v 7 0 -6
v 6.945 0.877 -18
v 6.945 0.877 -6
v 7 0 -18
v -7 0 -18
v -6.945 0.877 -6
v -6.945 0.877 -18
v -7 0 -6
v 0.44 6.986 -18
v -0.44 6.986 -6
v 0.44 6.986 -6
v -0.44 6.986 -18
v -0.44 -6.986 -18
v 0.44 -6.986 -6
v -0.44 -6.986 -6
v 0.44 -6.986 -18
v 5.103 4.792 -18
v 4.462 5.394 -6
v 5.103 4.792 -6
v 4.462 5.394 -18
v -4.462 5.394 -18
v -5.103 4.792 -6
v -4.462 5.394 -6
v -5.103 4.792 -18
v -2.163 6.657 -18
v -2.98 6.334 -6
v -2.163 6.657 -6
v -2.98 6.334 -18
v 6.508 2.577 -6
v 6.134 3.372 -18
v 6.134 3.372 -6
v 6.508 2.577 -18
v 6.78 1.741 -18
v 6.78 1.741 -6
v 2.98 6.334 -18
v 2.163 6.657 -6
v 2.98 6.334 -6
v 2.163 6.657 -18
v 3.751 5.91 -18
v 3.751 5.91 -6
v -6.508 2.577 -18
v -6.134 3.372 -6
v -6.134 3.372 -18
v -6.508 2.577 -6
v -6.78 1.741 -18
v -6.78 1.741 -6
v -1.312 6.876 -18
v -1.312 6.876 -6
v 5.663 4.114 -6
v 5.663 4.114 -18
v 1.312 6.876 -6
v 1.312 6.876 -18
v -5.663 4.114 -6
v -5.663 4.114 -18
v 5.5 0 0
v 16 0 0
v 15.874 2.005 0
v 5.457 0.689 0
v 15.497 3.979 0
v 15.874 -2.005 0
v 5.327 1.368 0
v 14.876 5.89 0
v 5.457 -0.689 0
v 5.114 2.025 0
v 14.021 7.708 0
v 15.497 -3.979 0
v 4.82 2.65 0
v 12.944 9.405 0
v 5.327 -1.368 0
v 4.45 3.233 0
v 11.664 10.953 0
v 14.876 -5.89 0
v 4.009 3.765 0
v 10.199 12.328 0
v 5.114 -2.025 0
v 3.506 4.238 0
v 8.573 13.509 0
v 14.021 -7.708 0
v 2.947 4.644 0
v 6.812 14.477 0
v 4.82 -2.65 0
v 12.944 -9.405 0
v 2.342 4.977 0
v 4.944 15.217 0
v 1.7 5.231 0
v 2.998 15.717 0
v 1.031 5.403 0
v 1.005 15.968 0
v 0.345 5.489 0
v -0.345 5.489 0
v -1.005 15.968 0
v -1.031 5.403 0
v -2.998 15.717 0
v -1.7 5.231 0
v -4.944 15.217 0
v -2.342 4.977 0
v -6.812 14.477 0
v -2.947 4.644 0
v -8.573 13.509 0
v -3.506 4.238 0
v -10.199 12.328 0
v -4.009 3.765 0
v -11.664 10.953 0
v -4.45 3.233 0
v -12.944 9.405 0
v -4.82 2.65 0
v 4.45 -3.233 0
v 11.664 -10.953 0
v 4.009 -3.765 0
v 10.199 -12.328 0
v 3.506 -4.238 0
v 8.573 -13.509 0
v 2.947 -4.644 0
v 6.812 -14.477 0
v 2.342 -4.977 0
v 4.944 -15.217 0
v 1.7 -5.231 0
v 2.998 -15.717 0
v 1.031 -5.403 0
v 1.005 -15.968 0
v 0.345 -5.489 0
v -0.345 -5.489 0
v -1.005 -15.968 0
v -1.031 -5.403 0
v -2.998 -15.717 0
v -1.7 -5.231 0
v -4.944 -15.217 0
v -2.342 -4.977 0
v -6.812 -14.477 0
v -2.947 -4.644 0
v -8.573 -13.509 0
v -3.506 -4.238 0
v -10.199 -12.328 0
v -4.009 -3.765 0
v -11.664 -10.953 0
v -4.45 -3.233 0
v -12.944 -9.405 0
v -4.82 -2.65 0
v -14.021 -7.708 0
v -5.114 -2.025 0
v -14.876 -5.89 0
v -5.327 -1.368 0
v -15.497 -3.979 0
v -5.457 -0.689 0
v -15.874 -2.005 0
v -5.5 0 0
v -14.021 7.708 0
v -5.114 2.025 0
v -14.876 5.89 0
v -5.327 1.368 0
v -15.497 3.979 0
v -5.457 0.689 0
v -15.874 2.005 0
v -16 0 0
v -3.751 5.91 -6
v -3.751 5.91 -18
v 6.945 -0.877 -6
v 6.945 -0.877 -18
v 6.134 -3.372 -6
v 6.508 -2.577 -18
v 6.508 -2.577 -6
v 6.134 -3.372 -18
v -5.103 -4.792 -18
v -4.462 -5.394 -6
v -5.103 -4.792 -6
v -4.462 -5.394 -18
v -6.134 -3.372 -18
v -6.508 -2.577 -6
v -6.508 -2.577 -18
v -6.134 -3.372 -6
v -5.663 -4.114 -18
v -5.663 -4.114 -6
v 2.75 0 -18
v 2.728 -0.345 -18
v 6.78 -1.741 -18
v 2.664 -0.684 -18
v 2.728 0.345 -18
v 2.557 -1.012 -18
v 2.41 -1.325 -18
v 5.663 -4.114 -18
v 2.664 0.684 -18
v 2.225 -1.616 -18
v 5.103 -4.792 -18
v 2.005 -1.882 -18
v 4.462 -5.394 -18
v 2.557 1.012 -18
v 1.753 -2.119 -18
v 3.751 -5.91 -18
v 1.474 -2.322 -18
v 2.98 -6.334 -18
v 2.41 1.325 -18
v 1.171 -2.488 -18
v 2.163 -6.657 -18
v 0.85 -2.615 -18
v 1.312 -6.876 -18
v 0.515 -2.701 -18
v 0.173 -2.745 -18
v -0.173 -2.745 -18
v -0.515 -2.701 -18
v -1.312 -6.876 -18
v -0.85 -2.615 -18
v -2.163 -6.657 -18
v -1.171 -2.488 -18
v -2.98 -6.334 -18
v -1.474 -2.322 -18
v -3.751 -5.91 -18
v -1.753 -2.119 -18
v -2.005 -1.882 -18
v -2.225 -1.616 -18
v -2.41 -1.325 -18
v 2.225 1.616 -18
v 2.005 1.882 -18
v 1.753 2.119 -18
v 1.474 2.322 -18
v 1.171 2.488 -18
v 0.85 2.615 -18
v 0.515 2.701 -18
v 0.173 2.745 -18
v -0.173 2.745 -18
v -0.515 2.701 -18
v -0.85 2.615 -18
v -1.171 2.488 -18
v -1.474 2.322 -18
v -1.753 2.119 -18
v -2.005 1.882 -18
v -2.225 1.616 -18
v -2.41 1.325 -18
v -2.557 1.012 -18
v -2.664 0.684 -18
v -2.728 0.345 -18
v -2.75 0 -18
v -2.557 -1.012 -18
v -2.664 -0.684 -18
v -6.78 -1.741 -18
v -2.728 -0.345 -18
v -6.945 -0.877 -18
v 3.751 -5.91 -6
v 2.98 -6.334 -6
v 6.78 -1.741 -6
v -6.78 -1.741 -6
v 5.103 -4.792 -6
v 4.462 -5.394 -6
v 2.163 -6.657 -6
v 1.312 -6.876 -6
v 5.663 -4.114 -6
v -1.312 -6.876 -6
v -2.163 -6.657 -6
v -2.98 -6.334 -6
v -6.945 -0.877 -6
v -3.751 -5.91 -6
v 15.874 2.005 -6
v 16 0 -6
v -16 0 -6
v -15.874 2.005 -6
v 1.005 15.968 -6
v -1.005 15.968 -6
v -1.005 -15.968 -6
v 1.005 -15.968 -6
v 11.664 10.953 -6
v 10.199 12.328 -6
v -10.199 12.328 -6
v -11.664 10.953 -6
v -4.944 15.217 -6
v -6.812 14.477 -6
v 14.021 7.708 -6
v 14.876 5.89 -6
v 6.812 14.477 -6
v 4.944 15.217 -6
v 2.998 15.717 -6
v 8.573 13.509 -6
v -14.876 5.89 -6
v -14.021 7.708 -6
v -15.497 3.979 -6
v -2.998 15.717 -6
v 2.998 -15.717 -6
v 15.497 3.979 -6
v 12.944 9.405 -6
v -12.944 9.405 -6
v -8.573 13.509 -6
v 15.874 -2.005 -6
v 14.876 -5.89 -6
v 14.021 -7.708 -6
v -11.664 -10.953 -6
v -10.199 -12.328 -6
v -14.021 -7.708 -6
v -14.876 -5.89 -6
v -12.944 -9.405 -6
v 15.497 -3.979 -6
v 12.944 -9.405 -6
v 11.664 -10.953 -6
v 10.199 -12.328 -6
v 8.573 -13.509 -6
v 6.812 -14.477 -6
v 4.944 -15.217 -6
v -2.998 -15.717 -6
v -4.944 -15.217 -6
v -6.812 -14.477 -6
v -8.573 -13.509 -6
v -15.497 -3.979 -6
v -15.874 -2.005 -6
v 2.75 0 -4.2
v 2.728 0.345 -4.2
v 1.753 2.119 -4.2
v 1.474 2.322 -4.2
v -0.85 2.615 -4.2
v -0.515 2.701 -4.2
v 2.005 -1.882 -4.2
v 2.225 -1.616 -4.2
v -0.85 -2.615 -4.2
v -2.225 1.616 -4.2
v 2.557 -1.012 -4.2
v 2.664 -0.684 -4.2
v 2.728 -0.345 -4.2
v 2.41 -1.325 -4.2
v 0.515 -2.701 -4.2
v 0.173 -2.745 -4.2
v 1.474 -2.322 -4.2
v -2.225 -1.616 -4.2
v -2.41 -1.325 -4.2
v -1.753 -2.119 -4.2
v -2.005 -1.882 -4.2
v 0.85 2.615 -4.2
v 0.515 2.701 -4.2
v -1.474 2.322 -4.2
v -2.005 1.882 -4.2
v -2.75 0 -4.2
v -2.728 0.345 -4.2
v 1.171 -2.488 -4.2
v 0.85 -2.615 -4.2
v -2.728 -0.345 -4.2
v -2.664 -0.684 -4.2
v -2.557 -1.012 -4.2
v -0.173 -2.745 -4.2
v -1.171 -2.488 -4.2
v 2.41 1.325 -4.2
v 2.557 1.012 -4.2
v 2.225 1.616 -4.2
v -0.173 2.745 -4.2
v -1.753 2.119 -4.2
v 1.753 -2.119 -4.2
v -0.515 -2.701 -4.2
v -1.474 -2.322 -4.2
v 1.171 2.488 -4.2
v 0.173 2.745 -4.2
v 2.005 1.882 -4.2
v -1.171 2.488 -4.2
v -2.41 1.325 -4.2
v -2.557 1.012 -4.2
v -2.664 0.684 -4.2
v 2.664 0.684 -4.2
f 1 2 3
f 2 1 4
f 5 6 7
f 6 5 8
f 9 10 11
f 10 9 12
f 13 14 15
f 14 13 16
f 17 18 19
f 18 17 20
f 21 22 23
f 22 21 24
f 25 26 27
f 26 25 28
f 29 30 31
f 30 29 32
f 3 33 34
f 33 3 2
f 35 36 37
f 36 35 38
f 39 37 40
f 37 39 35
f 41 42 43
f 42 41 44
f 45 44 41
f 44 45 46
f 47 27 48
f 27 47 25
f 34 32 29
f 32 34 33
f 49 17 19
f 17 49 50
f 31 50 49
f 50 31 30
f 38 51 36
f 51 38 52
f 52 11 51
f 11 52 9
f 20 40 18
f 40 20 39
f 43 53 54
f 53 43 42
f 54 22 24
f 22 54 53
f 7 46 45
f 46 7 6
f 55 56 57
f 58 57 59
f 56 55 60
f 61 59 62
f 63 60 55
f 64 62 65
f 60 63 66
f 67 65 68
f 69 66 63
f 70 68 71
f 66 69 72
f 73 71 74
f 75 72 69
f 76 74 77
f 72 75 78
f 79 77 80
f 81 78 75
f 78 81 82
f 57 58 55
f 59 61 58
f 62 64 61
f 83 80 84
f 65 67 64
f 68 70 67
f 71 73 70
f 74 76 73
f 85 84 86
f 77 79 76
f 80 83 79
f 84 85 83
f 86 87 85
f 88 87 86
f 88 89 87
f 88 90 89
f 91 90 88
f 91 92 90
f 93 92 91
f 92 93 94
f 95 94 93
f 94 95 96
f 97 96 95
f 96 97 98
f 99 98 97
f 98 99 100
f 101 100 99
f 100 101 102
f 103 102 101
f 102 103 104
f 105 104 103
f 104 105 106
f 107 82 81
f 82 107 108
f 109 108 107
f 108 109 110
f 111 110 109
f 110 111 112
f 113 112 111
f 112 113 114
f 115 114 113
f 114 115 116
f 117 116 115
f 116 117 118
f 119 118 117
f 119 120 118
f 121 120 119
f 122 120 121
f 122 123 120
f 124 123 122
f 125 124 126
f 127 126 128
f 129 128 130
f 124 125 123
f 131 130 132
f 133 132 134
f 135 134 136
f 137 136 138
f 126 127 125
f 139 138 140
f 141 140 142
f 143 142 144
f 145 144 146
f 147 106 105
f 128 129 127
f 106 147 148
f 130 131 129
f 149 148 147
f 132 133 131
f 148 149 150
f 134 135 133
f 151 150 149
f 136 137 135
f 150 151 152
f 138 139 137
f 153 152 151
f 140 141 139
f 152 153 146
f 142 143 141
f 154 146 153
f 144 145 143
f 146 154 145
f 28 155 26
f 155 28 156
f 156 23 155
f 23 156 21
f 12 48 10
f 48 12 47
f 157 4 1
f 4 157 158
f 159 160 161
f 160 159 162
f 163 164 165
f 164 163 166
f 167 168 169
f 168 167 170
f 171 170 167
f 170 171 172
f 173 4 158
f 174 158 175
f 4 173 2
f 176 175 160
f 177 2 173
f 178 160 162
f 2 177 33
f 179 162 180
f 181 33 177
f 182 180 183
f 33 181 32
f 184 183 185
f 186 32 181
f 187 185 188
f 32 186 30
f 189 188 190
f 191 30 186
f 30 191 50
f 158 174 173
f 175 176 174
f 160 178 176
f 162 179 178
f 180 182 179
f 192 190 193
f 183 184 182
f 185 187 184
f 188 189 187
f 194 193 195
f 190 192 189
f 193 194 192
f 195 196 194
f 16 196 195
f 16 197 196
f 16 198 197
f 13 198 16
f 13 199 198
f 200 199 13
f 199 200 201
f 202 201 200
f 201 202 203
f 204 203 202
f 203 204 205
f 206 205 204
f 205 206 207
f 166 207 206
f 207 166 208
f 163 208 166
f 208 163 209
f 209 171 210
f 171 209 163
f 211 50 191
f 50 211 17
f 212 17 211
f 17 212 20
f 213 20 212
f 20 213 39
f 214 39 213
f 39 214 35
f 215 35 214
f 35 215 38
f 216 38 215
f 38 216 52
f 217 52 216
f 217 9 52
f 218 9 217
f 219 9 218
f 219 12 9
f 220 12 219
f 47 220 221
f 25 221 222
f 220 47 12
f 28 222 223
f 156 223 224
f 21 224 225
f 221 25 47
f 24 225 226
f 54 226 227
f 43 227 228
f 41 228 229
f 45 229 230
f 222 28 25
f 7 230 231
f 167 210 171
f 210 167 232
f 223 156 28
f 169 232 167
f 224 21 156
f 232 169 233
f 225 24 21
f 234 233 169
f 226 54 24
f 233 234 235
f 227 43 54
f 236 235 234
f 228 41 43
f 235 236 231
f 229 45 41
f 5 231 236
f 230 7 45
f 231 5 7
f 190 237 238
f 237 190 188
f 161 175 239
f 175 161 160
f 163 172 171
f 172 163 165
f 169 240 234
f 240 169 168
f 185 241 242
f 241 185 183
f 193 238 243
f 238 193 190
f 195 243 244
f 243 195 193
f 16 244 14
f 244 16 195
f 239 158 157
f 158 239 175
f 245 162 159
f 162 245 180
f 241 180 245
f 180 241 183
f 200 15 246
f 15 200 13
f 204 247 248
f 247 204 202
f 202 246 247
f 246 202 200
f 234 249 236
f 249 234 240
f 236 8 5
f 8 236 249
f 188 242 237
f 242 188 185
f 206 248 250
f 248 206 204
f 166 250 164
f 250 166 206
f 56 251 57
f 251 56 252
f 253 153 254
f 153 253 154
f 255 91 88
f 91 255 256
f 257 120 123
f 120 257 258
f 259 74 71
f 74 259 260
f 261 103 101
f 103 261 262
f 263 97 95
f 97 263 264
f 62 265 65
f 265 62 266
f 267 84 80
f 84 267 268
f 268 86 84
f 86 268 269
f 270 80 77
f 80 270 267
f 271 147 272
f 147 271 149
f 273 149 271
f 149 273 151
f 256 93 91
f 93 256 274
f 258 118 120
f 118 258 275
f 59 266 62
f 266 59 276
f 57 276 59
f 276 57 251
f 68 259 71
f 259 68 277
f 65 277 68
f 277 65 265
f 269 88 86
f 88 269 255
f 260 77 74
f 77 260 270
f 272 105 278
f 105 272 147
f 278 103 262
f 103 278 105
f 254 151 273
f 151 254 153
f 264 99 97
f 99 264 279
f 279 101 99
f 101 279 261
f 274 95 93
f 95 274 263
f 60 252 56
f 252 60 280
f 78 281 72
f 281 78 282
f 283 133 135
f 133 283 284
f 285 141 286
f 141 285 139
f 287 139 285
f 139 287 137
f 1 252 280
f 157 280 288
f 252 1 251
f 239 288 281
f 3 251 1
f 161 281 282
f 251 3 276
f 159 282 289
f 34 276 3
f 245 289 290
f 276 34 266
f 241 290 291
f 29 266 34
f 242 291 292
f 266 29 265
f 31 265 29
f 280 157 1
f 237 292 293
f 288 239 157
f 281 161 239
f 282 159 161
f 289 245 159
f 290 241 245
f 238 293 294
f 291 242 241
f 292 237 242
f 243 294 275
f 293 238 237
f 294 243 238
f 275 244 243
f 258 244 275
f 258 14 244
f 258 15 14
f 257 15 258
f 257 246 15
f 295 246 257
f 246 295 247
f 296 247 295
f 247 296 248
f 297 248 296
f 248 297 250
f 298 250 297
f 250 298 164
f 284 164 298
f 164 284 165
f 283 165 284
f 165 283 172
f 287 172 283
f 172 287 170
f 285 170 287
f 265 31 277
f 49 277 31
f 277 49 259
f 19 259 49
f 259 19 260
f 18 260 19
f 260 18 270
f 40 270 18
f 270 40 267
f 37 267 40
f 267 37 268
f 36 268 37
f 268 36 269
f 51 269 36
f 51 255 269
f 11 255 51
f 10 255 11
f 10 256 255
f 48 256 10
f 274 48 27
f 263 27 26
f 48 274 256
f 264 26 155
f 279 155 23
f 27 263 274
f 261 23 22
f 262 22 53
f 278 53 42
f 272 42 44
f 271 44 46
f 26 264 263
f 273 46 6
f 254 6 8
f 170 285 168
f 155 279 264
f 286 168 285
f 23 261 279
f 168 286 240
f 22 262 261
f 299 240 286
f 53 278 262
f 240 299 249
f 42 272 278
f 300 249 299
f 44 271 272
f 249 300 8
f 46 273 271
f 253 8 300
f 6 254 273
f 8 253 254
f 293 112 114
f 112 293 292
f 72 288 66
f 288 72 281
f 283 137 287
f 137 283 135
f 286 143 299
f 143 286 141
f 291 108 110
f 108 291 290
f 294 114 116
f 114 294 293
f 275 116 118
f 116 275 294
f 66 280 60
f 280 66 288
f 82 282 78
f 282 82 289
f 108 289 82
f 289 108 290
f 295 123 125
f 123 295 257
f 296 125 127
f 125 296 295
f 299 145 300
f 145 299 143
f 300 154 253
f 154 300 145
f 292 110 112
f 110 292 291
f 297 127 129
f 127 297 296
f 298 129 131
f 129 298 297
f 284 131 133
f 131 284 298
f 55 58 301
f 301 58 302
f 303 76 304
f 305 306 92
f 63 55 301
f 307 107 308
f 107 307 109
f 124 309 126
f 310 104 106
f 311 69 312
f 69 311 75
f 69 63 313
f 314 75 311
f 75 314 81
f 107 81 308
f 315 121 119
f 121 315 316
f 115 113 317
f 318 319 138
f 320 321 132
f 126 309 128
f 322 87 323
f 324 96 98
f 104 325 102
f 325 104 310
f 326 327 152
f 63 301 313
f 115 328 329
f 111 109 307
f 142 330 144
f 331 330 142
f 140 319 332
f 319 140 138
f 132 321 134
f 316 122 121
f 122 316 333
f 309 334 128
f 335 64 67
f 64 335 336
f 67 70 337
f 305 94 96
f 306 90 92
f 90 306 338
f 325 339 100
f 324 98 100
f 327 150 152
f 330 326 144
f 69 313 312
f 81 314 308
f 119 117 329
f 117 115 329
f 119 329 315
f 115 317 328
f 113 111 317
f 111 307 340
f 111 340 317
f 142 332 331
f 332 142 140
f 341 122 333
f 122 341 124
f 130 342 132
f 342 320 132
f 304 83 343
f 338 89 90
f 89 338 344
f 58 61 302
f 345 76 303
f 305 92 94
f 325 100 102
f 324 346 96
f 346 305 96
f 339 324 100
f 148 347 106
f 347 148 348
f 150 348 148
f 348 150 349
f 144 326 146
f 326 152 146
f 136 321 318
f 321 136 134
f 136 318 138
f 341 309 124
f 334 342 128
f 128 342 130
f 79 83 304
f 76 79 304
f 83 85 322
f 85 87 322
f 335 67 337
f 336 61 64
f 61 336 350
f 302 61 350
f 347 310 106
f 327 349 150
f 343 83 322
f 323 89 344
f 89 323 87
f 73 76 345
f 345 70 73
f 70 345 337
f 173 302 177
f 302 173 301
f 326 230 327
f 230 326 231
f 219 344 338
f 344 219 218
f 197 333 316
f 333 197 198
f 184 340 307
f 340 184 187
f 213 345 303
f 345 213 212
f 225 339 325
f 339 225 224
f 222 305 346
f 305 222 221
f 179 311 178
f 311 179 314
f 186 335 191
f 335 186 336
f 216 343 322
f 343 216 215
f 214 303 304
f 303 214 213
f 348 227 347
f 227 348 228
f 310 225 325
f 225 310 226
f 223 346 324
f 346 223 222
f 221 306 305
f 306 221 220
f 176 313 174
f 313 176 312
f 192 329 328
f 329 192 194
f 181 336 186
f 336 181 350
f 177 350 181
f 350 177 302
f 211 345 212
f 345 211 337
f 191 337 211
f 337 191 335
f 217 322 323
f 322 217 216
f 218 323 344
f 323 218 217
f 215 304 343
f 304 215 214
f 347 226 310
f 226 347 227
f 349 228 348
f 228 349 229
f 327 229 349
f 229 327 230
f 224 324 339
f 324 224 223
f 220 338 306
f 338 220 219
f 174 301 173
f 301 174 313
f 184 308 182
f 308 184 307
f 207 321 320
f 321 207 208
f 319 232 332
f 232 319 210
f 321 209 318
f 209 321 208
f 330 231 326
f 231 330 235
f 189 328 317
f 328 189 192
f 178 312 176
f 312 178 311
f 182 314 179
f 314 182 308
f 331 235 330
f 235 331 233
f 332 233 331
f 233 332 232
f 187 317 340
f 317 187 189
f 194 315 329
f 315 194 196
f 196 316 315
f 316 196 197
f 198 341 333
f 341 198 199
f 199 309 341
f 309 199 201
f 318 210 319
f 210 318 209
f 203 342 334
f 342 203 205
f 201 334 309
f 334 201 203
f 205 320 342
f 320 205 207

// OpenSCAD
$fn = 50;


difference() {
	union() {
		translate(v = [0, 0, -18.0000000000]) {
			cylinder(h = 18, r = 7.0000000000);
		}
		translate(v = [0, 0, -6.0000000000]) {
			cylinder(h = 6, r = 16.0000000000);
		}
	}
	union() {
		translate(v = [0, 0, 0]) {
			rotate(a = [0, 0, 0]) {
				difference() {
					union() {
						#translate(v = [0, 0, -18.0000000000]) {
							cylinder(h = 18, r = 2.2500000000);
						}
						#translate(v = [0, 0, -4.2000000000]) {
							cylinder(h = 4.2000000000, r1 = 2.7500000000, r2 = 5.5000000000);
						}
						#translate(v = [0, 0, -18.0000000000]) {
							cylinder(h = 18, r = 2.7500000000);
						}
						#translate(v = [0, 0, -18.0000000000]) {
							cylinder(h = 18, r = 2.2500000000);
						}
					}
					union();
				}
			}
		}
	}
}
